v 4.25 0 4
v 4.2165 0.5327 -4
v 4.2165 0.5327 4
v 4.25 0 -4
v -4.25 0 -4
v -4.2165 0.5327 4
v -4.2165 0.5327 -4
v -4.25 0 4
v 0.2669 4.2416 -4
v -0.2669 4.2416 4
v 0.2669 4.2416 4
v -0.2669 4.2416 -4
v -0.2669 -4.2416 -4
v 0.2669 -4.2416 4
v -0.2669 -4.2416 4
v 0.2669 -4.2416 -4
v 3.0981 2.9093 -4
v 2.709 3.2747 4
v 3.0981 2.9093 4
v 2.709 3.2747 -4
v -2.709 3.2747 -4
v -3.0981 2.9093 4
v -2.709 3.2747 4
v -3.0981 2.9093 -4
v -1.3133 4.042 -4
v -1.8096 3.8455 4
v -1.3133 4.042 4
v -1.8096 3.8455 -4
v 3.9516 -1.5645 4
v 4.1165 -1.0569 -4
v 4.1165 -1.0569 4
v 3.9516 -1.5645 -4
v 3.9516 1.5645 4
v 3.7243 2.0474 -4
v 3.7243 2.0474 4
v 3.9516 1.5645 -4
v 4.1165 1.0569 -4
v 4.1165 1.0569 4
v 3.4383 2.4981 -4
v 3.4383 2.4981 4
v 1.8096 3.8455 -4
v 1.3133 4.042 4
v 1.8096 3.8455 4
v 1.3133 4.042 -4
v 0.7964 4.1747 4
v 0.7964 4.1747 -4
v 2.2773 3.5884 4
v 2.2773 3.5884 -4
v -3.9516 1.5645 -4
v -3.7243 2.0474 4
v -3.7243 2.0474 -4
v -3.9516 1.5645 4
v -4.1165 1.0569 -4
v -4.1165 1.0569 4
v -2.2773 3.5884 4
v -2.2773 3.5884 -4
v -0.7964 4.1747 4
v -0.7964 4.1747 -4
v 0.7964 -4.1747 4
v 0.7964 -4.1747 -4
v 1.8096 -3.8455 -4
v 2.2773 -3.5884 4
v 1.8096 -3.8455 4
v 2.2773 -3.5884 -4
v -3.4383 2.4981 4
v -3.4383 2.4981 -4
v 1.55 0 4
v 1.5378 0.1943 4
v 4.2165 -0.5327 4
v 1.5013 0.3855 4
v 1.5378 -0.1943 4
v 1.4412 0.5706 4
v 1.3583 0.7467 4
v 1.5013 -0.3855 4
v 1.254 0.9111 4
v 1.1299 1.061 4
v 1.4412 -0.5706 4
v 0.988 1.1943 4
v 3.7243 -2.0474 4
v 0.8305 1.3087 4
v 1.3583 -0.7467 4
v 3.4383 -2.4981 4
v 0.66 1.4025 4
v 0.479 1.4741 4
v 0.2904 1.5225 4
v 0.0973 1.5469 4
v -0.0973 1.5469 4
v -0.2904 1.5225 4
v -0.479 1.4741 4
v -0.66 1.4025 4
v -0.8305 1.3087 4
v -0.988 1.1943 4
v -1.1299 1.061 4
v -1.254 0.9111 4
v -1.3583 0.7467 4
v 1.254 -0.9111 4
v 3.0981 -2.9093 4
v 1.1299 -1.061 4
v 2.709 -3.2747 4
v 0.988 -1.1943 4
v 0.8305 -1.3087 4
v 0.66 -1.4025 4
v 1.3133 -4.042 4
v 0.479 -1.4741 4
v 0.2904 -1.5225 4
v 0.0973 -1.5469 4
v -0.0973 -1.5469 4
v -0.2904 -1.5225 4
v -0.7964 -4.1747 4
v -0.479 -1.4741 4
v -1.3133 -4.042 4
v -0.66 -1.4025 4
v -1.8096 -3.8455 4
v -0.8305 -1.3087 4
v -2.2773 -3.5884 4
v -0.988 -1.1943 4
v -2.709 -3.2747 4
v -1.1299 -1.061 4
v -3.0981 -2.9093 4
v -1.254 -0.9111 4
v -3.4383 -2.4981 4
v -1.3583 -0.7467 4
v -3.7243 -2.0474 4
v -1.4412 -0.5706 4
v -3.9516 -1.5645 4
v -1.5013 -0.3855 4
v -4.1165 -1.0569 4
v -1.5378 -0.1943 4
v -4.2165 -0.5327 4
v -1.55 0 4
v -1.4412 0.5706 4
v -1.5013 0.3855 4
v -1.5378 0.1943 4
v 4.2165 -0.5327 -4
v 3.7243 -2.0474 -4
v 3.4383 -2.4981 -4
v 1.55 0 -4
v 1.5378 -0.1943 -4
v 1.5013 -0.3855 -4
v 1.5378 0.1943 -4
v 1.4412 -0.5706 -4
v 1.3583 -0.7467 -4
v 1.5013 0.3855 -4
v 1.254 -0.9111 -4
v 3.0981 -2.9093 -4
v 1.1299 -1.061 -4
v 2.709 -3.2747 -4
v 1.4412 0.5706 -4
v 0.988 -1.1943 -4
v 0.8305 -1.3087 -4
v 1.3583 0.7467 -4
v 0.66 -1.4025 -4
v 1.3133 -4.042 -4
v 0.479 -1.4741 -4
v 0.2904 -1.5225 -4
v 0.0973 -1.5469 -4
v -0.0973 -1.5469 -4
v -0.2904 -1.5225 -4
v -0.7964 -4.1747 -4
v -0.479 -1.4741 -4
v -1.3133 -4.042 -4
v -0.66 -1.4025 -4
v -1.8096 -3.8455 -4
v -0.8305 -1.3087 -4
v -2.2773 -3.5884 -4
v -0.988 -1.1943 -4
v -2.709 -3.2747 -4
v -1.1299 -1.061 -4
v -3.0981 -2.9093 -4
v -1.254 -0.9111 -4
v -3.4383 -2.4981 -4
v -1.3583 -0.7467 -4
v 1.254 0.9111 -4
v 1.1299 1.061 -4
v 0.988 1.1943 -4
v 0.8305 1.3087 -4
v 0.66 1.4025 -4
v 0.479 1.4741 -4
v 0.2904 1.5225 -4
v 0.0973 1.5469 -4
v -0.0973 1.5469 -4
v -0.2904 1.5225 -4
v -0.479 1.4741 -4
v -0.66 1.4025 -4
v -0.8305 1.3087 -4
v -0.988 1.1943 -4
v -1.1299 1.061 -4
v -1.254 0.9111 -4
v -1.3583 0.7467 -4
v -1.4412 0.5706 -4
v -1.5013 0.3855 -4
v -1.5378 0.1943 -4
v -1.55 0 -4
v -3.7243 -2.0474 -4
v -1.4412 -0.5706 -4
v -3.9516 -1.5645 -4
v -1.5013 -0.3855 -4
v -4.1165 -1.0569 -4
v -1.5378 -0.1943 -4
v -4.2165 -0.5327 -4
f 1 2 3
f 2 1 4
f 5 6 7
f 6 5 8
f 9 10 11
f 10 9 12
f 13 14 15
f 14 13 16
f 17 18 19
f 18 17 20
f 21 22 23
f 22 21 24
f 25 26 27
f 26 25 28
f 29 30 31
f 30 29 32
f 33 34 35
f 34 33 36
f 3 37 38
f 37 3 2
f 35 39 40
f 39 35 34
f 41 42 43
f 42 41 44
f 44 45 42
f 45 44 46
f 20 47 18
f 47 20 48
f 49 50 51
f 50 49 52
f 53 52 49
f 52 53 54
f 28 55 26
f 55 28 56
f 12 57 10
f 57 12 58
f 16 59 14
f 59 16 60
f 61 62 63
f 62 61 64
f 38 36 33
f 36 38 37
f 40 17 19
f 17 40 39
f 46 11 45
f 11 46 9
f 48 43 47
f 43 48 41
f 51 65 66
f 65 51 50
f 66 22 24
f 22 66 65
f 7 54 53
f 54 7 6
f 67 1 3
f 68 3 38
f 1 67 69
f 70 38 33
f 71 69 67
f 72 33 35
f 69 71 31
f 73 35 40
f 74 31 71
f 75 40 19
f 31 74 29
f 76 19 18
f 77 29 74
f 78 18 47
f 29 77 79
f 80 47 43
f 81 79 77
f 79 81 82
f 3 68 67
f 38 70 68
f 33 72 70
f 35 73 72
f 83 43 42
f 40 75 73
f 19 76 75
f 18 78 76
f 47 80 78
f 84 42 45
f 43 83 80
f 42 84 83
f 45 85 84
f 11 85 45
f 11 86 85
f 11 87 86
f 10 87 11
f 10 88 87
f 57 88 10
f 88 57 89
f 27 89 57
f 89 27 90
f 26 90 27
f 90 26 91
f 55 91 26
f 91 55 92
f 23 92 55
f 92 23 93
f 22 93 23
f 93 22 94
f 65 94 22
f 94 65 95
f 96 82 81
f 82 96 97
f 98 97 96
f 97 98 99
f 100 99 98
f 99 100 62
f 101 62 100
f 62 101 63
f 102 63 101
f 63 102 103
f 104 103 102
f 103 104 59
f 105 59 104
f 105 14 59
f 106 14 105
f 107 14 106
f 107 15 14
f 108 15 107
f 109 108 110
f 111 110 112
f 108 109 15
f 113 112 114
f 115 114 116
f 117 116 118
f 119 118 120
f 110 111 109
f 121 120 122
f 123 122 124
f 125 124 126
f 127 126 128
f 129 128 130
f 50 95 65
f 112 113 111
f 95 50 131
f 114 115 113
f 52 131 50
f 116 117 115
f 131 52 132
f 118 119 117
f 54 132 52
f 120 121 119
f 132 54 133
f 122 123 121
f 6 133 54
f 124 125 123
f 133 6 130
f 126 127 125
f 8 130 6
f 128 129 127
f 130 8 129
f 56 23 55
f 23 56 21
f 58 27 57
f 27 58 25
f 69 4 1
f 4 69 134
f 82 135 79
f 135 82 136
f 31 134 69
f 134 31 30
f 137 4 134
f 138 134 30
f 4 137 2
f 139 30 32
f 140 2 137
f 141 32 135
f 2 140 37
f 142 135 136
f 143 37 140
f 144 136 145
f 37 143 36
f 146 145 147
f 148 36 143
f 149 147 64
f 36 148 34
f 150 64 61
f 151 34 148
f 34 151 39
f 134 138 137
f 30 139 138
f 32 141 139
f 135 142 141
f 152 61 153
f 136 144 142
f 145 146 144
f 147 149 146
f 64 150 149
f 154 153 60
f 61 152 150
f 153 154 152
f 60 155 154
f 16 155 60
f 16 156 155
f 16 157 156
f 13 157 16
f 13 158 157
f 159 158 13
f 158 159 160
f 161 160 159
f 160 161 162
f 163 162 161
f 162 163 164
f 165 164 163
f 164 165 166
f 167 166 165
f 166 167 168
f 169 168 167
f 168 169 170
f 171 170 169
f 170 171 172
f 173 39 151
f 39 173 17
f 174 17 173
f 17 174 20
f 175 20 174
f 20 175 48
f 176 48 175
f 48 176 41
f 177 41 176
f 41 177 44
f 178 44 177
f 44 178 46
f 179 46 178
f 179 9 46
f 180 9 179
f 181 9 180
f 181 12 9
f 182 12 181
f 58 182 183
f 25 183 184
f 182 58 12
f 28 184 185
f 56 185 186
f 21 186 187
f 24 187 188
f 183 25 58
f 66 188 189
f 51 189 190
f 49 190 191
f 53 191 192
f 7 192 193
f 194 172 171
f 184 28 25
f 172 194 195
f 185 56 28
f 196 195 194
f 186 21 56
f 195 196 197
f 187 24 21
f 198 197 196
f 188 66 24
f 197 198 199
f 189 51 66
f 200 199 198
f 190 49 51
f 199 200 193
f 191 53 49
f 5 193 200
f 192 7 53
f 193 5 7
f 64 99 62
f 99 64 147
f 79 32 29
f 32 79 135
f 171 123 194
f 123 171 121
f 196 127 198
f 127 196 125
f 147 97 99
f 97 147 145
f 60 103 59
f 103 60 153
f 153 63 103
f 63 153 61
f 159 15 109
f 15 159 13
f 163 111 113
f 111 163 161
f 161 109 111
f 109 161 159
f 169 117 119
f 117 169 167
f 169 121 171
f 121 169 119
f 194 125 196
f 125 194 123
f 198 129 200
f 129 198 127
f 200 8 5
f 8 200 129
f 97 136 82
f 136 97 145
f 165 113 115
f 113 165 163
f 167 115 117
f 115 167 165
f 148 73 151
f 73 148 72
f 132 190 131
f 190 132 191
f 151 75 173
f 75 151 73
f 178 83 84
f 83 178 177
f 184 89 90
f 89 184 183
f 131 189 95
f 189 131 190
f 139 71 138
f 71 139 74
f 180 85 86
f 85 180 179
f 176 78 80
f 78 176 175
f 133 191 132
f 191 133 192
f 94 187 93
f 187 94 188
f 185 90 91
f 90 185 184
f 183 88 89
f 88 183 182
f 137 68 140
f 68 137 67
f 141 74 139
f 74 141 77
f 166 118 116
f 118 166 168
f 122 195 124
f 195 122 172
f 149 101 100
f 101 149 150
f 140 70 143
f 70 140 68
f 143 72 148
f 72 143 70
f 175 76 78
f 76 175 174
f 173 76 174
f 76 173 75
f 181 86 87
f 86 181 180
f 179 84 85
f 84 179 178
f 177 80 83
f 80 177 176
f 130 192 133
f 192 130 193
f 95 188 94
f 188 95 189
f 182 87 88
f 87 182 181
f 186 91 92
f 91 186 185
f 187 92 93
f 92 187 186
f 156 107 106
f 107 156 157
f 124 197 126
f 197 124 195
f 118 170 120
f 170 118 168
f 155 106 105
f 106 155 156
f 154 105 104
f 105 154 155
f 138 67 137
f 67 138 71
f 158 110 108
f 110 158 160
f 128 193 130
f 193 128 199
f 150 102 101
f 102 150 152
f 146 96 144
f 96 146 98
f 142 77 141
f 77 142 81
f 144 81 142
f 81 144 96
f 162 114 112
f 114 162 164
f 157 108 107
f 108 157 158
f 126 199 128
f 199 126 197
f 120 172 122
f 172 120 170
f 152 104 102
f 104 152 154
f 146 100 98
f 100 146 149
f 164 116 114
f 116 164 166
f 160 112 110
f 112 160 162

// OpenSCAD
$fn = 50;


difference() {
	union() {
		translate(v = [0, 0, -4.0000000000]) {
			cylinder(h = 8, r = 4.2500000000);
		}
	}
	union() {
		translate(v = [0, 0, -100.0000000000]) {
			cylinder(h = 200, r = 1.5500000000);
		}
	}
}
